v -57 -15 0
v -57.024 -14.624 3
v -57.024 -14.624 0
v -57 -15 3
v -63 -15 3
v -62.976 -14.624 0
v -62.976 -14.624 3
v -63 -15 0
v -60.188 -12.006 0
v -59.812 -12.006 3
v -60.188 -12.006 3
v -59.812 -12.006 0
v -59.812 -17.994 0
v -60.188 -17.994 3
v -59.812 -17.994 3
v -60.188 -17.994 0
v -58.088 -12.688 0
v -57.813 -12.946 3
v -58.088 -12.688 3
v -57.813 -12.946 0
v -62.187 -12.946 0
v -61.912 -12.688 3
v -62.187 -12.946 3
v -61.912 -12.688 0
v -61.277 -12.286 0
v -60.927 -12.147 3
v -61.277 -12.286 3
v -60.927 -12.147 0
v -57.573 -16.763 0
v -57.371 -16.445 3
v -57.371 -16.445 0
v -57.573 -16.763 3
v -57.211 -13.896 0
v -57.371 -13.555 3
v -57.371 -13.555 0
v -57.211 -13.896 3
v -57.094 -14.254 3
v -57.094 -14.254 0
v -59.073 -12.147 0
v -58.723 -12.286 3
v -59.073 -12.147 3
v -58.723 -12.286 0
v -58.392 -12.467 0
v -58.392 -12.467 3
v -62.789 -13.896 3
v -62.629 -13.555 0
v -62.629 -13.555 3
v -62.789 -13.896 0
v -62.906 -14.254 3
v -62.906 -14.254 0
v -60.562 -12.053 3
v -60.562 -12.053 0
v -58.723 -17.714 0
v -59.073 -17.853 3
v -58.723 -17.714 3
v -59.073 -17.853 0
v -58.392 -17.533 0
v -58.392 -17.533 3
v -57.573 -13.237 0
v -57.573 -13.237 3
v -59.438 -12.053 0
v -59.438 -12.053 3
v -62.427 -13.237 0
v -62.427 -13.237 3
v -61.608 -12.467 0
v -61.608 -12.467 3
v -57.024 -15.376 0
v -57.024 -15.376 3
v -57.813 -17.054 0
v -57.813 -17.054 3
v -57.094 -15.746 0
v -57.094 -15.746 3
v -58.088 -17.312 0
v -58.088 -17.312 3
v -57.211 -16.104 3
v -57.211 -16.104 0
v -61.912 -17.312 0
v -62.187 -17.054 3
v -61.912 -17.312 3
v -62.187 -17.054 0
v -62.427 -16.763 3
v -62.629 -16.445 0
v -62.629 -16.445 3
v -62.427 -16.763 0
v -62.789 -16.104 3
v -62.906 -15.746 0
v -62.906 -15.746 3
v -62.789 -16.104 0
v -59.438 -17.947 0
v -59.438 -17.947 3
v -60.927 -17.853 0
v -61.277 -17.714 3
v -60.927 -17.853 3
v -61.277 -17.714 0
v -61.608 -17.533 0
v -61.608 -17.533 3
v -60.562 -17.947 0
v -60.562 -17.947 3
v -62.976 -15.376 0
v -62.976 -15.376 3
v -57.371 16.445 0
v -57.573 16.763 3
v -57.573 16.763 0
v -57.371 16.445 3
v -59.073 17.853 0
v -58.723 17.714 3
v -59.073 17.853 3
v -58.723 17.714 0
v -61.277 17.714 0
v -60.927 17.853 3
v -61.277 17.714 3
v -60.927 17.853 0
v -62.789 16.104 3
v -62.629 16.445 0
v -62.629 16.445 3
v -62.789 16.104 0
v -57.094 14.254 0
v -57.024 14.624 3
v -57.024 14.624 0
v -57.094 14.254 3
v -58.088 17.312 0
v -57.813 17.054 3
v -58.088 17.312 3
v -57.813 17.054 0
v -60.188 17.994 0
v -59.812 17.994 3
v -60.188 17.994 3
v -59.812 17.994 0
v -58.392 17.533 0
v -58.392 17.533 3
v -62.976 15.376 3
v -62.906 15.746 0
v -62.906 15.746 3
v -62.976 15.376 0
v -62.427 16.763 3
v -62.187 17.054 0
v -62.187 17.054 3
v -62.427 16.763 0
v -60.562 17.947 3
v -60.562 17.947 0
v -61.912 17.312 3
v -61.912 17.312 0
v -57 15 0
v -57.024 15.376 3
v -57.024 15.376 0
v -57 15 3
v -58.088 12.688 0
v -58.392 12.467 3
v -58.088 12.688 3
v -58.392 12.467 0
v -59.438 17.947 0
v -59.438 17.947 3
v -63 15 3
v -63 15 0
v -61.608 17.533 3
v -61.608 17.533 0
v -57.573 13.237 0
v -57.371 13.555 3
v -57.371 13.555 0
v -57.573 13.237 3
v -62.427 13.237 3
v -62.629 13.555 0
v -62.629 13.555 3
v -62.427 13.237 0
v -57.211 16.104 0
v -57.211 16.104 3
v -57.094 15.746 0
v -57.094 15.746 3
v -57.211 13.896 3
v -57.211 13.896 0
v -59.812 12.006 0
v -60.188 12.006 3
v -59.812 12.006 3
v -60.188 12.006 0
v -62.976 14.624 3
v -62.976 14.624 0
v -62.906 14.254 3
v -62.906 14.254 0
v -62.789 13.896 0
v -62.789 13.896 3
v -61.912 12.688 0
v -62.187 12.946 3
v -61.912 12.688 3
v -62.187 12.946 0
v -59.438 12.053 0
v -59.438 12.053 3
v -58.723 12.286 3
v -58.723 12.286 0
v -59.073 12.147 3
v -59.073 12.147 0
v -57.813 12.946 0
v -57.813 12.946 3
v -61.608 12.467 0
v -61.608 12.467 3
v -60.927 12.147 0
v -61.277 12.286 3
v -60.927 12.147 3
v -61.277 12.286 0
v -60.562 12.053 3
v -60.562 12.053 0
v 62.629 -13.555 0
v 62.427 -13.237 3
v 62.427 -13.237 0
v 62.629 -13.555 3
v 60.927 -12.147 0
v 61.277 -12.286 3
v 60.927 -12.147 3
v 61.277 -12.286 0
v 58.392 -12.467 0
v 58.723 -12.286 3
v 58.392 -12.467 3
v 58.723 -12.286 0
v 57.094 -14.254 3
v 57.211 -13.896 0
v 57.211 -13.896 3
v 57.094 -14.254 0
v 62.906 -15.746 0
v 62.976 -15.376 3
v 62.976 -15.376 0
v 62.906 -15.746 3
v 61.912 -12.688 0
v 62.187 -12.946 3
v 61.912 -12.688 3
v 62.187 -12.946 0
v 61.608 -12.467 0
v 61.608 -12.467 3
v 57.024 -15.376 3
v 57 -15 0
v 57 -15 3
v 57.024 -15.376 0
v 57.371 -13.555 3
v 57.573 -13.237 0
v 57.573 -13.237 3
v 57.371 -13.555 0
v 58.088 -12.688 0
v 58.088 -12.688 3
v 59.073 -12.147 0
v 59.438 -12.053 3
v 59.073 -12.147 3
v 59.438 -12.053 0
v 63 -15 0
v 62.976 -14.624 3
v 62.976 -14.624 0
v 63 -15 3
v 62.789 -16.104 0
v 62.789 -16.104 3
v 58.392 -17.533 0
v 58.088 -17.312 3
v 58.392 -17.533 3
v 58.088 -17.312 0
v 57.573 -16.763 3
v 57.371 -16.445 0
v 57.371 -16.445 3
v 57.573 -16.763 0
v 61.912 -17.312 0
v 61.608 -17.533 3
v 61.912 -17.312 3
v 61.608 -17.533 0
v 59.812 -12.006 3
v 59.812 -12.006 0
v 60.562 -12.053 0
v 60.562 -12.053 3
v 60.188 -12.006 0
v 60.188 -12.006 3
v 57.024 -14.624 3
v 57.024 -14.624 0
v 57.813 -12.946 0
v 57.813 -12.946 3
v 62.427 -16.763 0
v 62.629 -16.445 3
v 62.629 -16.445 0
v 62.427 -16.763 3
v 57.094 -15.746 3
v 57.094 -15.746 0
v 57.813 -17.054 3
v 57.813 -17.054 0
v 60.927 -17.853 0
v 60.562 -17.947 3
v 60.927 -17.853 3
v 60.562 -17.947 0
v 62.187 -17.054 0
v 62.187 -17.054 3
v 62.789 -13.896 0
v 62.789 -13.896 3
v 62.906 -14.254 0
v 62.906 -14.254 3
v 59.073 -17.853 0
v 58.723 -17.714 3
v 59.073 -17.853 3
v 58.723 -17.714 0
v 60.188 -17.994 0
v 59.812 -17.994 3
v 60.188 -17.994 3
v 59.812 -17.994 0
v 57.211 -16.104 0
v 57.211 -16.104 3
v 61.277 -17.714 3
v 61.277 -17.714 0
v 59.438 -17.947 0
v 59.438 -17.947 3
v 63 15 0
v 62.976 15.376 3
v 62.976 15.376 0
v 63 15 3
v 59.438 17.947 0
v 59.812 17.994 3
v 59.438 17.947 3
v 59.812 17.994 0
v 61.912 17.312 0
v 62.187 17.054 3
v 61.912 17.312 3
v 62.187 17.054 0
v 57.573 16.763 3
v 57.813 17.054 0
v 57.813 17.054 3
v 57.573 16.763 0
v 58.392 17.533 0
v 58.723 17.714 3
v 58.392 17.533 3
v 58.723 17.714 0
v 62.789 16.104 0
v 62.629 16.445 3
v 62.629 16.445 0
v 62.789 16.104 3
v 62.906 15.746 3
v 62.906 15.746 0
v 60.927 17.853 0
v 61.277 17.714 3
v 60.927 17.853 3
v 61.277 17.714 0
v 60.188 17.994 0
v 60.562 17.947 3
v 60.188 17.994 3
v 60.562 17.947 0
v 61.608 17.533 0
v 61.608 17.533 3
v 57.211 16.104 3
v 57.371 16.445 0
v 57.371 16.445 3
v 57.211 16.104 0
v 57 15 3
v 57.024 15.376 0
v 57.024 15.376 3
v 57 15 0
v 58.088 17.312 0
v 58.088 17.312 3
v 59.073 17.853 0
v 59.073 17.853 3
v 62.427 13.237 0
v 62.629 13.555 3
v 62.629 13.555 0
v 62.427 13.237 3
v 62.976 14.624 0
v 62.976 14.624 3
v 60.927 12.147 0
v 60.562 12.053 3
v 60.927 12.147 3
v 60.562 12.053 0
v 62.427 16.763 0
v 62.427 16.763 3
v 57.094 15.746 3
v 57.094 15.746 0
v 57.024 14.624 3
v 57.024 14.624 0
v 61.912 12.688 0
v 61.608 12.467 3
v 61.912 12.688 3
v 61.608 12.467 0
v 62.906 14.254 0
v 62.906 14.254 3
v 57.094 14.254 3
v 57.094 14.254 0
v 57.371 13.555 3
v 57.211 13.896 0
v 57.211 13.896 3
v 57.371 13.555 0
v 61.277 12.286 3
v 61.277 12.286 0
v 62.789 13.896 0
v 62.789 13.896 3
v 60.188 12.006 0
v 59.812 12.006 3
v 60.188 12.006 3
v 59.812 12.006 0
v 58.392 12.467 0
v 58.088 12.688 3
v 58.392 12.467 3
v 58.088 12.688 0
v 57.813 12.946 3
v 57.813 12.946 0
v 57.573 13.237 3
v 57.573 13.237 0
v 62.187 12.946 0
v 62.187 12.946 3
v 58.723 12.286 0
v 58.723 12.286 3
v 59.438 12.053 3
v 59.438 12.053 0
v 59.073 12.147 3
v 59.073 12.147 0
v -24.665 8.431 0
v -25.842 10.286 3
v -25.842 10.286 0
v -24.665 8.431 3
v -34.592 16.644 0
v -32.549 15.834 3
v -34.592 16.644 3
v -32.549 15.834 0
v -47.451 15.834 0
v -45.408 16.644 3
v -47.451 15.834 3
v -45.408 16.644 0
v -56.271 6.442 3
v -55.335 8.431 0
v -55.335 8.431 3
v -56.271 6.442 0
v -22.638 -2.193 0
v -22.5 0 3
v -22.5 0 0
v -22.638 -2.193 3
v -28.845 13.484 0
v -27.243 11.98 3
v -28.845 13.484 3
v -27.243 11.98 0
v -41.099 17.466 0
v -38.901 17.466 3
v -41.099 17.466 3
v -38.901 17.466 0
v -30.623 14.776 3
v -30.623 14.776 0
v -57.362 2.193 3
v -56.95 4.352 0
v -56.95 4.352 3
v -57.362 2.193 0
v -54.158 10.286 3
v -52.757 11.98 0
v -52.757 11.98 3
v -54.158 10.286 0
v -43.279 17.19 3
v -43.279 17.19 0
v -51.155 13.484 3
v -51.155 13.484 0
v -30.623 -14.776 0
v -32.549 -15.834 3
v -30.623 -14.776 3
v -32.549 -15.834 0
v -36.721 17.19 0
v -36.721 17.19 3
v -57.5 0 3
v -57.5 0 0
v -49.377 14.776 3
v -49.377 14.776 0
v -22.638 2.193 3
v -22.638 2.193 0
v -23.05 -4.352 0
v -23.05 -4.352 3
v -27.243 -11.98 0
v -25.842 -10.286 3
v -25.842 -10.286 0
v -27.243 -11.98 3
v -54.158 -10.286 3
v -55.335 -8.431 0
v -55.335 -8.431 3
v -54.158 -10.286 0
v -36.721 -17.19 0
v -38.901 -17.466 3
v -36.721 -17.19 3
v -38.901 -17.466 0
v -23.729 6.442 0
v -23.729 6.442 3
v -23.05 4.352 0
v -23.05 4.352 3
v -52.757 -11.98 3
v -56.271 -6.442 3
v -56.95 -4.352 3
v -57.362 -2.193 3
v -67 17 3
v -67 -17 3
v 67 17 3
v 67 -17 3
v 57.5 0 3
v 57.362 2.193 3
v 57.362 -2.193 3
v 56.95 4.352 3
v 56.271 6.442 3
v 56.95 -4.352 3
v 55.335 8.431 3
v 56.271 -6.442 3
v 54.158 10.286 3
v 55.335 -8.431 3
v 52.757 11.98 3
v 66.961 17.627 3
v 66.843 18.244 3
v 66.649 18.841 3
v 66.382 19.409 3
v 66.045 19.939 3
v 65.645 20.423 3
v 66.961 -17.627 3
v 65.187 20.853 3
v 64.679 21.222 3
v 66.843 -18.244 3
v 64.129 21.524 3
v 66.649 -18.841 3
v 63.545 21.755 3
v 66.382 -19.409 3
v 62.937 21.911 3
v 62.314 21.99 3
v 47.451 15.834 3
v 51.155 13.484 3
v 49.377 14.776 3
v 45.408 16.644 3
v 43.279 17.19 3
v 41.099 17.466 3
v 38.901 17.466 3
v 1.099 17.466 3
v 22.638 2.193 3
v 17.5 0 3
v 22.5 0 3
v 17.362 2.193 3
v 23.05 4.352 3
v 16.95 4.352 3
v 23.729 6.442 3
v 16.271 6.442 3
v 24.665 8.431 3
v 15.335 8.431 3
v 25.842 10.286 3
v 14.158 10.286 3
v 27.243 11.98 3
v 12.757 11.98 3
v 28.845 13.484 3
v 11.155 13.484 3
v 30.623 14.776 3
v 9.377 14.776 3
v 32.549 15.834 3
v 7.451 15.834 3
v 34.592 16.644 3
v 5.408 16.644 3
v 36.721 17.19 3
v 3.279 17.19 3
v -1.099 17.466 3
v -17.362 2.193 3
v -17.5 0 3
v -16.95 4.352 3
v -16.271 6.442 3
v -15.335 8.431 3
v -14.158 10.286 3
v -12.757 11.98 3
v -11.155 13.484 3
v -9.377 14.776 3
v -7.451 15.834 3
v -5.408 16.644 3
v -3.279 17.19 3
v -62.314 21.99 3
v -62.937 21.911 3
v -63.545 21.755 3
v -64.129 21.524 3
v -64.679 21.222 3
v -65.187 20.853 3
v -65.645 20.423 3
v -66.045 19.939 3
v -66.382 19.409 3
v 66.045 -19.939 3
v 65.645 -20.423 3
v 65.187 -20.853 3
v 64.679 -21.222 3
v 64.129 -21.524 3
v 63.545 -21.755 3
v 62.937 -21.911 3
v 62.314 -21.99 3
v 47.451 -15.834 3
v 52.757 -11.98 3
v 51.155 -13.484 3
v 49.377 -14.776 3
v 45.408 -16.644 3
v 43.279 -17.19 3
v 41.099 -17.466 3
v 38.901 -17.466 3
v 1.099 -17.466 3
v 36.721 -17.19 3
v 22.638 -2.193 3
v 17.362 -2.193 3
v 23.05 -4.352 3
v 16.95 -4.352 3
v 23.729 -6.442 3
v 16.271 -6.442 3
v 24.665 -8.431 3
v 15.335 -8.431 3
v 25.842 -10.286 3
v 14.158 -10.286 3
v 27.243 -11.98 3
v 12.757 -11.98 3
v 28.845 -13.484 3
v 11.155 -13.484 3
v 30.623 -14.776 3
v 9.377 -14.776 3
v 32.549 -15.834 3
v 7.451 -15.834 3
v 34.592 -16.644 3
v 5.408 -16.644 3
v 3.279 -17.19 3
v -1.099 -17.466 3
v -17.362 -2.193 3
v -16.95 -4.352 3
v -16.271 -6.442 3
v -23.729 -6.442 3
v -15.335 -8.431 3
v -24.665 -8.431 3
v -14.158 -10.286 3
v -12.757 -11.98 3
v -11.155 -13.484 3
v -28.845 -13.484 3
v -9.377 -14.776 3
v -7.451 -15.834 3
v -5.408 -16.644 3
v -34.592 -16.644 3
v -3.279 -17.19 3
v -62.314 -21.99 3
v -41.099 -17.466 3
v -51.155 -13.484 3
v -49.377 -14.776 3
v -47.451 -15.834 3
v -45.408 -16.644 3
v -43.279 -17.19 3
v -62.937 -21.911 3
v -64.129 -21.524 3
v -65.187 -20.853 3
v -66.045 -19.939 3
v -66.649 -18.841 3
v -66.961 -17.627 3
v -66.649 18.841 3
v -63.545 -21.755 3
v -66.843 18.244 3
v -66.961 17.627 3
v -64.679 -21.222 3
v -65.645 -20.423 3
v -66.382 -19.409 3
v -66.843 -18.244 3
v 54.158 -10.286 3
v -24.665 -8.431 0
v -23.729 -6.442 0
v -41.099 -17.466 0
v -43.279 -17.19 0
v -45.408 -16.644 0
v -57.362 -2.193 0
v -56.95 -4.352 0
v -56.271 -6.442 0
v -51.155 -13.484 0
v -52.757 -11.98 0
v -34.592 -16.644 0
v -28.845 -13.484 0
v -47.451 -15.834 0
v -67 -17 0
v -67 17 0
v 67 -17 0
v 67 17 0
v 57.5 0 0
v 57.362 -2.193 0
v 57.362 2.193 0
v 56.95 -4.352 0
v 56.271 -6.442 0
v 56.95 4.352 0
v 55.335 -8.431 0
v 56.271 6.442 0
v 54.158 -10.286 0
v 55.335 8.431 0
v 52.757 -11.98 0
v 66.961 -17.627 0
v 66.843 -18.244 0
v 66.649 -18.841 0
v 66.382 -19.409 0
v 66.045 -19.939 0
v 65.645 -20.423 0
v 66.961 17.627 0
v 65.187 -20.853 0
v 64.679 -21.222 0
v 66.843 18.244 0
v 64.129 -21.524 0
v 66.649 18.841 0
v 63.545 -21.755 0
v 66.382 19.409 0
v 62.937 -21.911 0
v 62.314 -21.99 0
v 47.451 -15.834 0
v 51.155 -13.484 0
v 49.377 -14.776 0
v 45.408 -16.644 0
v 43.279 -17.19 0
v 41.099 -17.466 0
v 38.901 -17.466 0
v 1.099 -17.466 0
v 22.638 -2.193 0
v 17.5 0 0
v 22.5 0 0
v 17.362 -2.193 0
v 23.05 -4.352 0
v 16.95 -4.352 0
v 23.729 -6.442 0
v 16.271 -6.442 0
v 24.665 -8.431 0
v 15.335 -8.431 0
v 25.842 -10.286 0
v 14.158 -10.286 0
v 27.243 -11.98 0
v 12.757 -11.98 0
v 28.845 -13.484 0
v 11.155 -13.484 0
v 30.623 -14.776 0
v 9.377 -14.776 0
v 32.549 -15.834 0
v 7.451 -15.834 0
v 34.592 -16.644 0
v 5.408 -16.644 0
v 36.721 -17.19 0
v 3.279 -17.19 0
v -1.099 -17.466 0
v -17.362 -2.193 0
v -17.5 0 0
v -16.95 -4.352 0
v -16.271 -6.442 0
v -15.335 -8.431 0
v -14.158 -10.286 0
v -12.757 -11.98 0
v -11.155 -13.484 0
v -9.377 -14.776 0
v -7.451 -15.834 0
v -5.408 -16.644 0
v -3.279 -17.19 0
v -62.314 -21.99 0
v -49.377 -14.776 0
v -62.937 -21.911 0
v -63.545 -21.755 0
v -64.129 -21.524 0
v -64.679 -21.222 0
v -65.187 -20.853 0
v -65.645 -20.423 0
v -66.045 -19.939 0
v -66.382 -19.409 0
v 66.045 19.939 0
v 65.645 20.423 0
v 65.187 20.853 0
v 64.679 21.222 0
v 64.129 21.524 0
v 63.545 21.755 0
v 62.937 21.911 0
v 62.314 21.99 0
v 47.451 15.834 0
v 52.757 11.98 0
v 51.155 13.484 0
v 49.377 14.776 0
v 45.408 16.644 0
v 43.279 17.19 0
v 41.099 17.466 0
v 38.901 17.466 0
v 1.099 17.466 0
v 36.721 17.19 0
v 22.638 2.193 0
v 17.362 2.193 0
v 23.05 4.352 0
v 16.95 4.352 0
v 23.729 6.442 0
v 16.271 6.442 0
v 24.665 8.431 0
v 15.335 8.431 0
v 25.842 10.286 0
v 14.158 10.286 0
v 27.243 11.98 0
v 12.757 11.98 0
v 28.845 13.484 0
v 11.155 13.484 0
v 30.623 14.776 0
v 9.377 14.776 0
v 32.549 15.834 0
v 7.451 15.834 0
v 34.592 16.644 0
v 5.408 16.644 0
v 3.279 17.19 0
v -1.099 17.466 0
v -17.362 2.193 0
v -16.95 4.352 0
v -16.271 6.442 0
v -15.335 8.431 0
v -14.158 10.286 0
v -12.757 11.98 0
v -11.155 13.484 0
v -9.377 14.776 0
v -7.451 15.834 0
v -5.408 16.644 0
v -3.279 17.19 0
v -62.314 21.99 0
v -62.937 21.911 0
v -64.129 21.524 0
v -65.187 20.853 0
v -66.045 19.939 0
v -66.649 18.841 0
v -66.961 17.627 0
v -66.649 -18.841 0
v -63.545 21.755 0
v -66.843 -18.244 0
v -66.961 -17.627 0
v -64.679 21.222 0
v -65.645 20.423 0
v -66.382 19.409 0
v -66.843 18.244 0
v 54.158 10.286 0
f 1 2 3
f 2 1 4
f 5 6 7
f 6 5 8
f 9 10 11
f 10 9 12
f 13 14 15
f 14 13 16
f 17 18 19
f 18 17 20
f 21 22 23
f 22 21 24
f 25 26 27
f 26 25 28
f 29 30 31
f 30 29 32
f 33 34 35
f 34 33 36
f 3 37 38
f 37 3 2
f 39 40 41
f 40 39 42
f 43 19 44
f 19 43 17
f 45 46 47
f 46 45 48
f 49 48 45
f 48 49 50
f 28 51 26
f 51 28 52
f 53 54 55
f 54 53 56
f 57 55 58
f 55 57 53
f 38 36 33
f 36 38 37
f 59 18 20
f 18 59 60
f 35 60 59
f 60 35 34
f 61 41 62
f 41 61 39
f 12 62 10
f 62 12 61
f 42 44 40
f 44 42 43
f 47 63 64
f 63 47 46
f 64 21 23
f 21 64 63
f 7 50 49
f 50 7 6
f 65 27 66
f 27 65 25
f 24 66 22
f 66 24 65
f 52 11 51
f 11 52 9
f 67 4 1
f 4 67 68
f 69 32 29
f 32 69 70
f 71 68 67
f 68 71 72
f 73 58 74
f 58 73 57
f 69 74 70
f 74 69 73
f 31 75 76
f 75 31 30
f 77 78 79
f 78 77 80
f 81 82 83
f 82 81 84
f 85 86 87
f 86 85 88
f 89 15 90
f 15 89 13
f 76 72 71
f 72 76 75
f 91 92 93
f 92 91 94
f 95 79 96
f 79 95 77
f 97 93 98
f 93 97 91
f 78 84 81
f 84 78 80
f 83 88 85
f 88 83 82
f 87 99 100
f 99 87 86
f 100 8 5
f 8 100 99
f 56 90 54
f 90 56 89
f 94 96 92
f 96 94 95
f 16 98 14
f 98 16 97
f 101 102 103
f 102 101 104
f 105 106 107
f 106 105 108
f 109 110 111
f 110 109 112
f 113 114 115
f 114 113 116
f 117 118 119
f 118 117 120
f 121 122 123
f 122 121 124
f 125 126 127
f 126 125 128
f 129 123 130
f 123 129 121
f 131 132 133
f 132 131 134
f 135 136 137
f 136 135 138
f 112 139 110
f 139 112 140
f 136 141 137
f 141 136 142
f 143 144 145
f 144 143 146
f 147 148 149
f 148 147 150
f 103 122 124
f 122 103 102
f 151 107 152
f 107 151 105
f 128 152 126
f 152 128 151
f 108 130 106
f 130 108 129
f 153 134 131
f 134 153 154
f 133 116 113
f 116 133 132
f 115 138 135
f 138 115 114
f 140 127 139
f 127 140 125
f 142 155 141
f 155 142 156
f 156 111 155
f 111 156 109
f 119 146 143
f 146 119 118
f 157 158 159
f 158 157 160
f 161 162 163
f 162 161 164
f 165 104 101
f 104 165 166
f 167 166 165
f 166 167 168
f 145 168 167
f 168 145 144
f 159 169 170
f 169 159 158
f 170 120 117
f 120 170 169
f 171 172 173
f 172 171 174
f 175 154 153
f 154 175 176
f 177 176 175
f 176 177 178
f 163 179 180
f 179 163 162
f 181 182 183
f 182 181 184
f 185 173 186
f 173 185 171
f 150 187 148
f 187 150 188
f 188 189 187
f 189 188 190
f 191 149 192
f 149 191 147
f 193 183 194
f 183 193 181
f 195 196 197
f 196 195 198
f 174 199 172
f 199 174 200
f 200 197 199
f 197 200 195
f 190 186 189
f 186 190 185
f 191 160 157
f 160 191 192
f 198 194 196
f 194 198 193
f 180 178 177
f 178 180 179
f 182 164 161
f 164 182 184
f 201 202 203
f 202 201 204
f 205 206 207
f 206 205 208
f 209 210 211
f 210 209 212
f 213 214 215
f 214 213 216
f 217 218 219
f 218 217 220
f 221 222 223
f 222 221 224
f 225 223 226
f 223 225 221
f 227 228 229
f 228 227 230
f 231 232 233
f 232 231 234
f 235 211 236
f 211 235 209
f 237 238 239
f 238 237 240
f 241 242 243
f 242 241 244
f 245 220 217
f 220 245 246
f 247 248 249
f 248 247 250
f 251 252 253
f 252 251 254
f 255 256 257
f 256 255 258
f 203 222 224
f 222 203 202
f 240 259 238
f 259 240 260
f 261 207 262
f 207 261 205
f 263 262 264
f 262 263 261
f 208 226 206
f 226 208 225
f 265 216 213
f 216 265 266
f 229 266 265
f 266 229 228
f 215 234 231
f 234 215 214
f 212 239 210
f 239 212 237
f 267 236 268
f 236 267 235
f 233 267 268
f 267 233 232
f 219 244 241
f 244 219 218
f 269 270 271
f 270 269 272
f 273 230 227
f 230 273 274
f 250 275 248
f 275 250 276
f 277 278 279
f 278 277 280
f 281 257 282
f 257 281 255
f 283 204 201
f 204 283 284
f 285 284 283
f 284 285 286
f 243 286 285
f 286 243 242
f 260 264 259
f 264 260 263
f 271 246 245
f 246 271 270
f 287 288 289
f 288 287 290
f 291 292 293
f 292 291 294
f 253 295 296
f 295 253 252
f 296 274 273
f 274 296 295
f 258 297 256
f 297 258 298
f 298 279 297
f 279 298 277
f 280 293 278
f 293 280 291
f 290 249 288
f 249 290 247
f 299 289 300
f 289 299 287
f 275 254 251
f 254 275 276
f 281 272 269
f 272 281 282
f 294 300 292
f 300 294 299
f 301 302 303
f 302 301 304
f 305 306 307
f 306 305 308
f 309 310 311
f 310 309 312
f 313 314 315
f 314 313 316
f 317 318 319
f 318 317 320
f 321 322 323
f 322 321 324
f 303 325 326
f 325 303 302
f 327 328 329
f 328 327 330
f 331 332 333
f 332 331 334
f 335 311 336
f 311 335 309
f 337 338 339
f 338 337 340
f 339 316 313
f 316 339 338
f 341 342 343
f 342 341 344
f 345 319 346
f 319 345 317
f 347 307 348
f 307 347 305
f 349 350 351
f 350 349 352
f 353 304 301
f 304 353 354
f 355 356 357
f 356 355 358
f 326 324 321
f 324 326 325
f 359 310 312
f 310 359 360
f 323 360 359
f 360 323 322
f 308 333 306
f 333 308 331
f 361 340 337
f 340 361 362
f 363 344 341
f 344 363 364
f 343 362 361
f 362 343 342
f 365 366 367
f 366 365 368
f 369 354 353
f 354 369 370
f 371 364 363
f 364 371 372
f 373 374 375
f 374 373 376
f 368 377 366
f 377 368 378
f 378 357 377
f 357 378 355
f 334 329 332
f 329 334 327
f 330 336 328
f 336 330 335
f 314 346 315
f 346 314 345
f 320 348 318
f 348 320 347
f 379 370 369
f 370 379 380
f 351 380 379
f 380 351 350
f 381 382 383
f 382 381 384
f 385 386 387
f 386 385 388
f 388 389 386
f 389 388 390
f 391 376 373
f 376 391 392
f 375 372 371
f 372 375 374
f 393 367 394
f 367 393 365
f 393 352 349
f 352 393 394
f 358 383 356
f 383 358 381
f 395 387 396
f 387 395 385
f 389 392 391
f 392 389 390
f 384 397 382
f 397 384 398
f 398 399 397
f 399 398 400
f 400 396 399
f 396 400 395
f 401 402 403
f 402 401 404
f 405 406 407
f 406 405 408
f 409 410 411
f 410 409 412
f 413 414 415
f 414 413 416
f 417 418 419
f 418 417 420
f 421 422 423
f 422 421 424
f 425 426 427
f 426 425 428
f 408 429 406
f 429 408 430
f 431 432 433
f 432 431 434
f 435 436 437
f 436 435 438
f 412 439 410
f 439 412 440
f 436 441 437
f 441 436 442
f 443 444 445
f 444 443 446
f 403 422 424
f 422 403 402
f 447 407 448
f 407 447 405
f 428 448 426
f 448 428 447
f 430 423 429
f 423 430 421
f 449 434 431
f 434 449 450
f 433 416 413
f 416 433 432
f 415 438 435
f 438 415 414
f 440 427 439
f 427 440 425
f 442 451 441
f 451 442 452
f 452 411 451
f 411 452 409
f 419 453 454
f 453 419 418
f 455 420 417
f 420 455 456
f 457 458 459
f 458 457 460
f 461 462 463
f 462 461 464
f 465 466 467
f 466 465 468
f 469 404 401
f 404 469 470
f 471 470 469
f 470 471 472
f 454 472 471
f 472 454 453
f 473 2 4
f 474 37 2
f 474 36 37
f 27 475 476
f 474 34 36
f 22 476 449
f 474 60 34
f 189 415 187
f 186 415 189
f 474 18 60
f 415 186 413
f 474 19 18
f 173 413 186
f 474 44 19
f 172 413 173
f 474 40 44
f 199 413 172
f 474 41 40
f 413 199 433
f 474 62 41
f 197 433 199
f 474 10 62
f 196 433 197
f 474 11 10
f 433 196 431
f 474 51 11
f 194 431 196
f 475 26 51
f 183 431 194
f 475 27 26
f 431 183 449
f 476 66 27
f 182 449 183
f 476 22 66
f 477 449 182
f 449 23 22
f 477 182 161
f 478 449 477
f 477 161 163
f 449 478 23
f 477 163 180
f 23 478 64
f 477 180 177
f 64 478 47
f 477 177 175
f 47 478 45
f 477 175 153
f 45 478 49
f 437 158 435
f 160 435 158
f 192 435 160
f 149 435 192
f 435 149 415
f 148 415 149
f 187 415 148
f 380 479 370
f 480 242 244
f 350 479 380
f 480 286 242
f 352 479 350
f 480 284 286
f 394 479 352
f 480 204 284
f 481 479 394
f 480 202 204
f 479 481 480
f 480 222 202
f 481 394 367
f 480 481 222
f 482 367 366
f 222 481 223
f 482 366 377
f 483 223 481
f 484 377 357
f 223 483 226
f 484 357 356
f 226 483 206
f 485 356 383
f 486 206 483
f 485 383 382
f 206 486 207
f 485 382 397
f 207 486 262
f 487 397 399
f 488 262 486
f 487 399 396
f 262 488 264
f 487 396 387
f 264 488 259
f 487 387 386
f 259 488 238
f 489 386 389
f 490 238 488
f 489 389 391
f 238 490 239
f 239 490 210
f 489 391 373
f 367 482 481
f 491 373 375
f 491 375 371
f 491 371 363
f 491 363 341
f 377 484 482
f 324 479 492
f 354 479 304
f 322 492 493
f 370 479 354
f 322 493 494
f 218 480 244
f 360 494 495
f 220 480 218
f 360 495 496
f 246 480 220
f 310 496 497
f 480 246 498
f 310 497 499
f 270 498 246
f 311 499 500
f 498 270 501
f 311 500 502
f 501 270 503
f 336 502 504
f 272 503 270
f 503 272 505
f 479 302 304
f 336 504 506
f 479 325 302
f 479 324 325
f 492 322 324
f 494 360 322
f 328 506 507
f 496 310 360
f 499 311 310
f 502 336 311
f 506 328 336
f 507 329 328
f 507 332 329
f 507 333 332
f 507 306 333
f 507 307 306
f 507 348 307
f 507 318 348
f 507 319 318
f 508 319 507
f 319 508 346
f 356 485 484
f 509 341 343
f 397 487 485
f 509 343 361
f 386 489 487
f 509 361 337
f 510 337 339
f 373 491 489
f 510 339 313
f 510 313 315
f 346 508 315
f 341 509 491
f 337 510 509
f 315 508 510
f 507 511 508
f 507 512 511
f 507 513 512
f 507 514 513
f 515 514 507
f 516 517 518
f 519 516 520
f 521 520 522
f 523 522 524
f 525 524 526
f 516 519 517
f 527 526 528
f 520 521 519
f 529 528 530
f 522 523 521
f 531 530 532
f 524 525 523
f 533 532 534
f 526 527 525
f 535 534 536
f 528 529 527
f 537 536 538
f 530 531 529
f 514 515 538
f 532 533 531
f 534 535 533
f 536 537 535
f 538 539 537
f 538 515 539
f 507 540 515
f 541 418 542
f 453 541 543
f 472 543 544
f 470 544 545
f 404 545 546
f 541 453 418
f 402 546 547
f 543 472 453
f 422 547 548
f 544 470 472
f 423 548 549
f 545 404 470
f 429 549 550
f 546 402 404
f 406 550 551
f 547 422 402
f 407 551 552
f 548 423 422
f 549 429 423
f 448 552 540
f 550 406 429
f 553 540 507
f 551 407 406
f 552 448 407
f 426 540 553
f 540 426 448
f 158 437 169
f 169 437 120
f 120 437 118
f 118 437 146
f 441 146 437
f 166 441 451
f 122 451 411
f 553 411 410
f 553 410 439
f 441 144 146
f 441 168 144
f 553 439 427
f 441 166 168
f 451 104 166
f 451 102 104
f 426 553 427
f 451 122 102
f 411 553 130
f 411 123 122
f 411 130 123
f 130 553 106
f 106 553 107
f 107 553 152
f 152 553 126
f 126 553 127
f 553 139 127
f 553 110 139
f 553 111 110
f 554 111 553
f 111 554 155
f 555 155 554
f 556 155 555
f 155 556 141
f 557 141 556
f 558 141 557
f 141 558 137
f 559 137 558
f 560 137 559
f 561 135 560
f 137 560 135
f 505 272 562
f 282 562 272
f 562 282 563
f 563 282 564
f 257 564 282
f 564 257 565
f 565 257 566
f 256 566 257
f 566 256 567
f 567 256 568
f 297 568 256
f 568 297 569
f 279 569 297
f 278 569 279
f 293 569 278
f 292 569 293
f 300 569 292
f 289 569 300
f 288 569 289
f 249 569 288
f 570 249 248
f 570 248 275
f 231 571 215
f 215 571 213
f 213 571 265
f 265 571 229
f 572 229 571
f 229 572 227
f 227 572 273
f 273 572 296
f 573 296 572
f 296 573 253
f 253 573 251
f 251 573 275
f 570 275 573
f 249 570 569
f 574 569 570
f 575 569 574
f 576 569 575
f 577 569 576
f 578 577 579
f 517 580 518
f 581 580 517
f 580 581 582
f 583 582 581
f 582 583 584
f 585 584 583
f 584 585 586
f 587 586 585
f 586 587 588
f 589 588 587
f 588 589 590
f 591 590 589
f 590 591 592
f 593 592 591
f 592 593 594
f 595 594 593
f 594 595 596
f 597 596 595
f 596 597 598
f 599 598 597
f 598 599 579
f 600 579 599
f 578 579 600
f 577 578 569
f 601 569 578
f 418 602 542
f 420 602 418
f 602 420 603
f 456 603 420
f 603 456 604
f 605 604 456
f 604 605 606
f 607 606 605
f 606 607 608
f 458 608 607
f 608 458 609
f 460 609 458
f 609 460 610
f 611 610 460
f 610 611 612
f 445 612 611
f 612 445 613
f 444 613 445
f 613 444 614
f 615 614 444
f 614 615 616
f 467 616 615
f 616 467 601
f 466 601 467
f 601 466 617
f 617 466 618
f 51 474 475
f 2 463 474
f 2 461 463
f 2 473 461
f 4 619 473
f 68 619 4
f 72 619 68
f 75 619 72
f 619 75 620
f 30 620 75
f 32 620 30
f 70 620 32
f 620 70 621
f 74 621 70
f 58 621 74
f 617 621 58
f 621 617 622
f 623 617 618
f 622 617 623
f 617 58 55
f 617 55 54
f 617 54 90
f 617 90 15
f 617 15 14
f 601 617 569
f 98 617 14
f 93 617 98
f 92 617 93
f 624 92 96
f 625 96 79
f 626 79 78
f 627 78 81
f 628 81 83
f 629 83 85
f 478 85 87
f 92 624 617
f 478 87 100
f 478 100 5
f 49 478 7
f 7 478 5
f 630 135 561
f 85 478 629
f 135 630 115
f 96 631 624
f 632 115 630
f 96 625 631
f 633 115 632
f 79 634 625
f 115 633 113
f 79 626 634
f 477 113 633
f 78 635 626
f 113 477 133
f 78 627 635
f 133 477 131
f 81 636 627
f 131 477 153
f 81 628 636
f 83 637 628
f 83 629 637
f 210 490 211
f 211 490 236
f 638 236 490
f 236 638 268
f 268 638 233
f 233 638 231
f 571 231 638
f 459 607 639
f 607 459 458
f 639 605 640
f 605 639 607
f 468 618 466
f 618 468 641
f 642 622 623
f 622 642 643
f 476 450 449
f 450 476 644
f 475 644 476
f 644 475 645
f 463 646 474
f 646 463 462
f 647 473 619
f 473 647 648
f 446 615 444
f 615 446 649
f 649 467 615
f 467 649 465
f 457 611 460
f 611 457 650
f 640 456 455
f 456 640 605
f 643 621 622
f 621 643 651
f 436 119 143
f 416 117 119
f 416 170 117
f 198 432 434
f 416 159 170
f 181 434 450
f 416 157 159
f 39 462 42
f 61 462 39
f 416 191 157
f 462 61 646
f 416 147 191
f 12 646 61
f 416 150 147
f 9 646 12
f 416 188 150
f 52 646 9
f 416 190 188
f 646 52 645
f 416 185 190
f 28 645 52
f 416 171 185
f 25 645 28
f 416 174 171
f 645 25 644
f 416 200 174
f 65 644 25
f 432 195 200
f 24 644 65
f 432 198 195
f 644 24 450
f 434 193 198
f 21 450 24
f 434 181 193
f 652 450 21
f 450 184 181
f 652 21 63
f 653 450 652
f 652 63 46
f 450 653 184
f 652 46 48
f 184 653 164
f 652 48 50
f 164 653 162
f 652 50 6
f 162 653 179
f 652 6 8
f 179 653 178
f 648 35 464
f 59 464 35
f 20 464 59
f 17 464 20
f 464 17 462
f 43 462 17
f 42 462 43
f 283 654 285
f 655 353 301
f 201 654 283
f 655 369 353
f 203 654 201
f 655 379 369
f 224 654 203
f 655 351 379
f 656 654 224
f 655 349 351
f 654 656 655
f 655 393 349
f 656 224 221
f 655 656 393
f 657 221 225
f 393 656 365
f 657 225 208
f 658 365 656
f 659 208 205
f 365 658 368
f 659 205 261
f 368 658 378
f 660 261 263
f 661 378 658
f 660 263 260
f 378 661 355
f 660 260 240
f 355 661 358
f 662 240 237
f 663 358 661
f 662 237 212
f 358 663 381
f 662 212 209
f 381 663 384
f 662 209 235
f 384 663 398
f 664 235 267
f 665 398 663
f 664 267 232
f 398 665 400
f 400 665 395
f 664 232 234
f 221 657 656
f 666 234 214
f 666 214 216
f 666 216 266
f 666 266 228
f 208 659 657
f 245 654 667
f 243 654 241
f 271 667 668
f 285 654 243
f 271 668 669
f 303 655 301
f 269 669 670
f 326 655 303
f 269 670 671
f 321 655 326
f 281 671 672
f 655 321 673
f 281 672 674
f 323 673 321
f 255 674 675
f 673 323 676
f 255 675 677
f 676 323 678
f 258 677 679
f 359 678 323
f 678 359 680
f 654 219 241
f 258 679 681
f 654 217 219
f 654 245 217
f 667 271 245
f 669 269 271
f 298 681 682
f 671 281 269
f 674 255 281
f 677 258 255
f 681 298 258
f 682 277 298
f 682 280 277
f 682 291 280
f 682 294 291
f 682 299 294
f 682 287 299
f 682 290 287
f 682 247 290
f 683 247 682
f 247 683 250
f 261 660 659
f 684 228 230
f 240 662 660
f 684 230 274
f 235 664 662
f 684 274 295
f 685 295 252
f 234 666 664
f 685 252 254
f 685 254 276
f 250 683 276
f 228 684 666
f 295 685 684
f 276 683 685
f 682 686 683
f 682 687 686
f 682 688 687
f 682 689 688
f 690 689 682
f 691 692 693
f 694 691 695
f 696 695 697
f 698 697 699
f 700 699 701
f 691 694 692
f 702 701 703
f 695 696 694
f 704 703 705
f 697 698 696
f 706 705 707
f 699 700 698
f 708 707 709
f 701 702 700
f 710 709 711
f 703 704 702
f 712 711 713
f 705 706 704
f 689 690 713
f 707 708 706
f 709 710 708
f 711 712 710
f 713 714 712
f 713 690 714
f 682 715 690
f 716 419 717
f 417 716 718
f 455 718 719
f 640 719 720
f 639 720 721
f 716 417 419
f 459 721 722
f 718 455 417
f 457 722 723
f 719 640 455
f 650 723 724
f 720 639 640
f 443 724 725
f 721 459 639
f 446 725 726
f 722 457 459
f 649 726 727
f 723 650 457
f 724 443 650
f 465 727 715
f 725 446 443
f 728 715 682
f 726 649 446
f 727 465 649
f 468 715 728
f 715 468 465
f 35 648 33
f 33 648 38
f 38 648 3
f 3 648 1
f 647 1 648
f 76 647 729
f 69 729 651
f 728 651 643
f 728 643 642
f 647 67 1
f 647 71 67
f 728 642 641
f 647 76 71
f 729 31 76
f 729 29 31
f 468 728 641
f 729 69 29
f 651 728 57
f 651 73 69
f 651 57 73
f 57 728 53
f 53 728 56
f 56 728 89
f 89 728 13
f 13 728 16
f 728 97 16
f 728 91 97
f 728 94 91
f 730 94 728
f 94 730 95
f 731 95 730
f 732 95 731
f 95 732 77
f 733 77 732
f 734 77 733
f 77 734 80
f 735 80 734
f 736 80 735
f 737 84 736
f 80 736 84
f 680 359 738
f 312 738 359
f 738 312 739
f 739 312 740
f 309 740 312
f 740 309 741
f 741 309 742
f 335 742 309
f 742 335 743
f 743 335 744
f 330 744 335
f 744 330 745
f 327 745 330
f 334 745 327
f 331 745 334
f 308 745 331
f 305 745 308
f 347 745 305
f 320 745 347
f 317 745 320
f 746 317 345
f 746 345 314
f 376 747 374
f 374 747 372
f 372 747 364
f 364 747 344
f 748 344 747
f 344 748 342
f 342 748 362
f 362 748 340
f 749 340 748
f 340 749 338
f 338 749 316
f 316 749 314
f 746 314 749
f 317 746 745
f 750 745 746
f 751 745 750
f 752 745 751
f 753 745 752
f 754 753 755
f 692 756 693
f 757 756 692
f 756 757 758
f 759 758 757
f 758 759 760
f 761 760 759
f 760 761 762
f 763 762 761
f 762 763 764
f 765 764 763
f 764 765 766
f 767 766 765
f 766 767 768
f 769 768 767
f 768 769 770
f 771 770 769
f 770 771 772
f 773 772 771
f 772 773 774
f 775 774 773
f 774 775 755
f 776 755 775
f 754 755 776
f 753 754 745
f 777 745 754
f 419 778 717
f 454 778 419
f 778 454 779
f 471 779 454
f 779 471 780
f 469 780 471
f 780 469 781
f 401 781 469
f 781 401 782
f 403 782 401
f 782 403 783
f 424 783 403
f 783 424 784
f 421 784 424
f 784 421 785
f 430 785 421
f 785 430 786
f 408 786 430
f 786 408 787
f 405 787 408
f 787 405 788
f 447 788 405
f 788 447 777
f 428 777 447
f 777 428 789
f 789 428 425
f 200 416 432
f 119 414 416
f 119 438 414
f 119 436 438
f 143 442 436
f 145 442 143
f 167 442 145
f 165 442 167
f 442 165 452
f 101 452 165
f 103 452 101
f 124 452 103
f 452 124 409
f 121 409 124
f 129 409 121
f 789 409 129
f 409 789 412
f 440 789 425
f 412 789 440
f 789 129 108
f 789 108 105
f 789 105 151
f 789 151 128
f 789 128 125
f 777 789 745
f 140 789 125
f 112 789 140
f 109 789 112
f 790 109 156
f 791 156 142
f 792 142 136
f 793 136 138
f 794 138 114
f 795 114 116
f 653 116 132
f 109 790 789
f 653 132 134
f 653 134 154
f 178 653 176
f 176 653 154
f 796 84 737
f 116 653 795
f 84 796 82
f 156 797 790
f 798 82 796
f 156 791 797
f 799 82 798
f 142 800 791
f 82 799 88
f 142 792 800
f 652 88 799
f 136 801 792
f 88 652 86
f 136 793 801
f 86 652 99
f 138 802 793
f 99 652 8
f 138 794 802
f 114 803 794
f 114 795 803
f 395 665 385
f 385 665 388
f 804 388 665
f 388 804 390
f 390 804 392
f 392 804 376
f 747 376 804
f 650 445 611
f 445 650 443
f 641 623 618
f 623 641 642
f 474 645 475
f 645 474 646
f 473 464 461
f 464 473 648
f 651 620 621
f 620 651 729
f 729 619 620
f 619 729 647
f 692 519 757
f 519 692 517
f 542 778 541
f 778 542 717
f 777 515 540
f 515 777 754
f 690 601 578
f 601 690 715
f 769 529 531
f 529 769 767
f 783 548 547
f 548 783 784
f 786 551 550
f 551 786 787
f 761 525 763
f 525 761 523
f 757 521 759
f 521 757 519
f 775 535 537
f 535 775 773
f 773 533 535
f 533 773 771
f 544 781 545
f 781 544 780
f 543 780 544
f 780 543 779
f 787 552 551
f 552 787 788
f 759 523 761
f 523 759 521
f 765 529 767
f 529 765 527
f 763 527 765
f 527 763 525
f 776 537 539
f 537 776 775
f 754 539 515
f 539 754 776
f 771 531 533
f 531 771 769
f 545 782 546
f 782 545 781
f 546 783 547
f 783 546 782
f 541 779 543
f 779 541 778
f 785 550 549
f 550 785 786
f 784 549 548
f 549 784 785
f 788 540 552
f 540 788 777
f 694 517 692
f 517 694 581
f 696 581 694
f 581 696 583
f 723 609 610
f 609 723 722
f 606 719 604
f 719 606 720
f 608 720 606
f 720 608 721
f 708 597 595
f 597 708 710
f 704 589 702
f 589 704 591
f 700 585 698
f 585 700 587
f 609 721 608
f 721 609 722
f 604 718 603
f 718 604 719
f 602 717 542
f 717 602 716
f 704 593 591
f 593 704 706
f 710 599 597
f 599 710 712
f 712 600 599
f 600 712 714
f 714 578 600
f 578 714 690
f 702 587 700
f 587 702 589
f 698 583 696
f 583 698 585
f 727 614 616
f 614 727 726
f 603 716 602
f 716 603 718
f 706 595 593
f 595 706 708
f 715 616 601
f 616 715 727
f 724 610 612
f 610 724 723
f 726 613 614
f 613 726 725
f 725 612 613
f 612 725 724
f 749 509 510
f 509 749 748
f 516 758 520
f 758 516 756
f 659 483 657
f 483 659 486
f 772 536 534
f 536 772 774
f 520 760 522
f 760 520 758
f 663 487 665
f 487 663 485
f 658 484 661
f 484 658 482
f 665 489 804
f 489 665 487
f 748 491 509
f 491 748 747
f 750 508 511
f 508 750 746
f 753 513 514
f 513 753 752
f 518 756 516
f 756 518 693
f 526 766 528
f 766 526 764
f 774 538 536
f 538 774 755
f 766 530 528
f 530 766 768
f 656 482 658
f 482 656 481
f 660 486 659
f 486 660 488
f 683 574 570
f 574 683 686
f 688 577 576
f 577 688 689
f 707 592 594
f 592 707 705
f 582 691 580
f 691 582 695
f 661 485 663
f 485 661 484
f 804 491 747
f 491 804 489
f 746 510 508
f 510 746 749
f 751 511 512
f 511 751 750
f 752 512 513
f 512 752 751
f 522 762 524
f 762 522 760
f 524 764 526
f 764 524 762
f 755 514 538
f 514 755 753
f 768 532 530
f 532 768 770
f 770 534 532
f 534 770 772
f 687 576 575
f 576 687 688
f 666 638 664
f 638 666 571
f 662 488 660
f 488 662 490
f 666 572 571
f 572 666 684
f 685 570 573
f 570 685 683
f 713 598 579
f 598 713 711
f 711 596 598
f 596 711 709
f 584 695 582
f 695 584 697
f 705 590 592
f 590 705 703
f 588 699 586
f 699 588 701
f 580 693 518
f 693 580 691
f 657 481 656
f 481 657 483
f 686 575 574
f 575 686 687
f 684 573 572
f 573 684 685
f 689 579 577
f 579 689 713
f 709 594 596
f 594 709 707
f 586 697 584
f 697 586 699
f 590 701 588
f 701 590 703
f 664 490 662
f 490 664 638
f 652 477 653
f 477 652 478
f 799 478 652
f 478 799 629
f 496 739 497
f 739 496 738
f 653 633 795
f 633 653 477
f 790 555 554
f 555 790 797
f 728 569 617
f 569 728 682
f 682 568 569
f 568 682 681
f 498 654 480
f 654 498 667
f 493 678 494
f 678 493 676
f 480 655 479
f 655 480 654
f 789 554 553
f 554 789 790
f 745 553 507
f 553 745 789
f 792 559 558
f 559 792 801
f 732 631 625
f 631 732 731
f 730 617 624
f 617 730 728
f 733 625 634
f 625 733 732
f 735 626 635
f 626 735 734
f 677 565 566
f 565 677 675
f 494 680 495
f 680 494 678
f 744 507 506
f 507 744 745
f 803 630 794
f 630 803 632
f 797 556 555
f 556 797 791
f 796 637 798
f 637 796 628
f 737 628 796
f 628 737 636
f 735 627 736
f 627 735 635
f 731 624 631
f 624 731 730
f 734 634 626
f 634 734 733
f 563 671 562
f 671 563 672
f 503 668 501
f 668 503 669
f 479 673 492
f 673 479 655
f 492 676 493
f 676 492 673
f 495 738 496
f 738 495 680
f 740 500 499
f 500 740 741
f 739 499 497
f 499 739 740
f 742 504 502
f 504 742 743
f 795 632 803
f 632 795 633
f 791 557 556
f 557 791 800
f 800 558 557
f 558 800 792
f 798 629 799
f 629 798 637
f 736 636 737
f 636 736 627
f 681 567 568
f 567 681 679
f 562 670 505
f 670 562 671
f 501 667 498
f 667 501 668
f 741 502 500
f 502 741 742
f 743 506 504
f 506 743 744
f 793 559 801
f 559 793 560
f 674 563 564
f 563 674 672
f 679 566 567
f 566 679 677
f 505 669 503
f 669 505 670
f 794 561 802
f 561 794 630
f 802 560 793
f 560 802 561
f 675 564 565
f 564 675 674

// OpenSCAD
$fn = 50;


difference() {
	union() {
		hull() {
			translate(v = [-62.0000000000, 17.0000000000, 0]) {
				cylinder(h = 3, r = 5);
			}
			translate(v = [62.0000000000, 17.0000000000, 0]) {
				cylinder(h = 3, r = 5);
			}
			translate(v = [-62.0000000000, -17.0000000000, 0]) {
				cylinder(h = 3, r = 5);
			}
			translate(v = [62.0000000000, -17.0000000000, 0]) {
				cylinder(h = 3, r = 5);
			}
		}
	}
	union() {
		#translate(v = [-60.0000000000, -15.0000000000, -100.0000000000]) {
			cylinder(h = 200, r = 3.0000000000);
		}
		#translate(v = [-60.0000000000, 15.0000000000, -100.0000000000]) {
			cylinder(h = 200, r = 3.0000000000);
		}
		#translate(v = [60.0000000000, -15.0000000000, -100.0000000000]) {
			cylinder(h = 200, r = 3.0000000000);
		}
		#translate(v = [60.0000000000, 15.0000000000, -100.0000000000]) {
			cylinder(h = 200, r = 3.0000000000);
		}
		#translate(v = [-40.0000000000, 0, 0]) {
			cylinder(h = 3, r = 17.5000000000);
		}
		#cylinder(h = 3, r = 17.5000000000);
		#translate(v = [40.0000000000, 0, 0]) {
			cylinder(h = 3, r = 17.5000000000);
		}
	}
}
